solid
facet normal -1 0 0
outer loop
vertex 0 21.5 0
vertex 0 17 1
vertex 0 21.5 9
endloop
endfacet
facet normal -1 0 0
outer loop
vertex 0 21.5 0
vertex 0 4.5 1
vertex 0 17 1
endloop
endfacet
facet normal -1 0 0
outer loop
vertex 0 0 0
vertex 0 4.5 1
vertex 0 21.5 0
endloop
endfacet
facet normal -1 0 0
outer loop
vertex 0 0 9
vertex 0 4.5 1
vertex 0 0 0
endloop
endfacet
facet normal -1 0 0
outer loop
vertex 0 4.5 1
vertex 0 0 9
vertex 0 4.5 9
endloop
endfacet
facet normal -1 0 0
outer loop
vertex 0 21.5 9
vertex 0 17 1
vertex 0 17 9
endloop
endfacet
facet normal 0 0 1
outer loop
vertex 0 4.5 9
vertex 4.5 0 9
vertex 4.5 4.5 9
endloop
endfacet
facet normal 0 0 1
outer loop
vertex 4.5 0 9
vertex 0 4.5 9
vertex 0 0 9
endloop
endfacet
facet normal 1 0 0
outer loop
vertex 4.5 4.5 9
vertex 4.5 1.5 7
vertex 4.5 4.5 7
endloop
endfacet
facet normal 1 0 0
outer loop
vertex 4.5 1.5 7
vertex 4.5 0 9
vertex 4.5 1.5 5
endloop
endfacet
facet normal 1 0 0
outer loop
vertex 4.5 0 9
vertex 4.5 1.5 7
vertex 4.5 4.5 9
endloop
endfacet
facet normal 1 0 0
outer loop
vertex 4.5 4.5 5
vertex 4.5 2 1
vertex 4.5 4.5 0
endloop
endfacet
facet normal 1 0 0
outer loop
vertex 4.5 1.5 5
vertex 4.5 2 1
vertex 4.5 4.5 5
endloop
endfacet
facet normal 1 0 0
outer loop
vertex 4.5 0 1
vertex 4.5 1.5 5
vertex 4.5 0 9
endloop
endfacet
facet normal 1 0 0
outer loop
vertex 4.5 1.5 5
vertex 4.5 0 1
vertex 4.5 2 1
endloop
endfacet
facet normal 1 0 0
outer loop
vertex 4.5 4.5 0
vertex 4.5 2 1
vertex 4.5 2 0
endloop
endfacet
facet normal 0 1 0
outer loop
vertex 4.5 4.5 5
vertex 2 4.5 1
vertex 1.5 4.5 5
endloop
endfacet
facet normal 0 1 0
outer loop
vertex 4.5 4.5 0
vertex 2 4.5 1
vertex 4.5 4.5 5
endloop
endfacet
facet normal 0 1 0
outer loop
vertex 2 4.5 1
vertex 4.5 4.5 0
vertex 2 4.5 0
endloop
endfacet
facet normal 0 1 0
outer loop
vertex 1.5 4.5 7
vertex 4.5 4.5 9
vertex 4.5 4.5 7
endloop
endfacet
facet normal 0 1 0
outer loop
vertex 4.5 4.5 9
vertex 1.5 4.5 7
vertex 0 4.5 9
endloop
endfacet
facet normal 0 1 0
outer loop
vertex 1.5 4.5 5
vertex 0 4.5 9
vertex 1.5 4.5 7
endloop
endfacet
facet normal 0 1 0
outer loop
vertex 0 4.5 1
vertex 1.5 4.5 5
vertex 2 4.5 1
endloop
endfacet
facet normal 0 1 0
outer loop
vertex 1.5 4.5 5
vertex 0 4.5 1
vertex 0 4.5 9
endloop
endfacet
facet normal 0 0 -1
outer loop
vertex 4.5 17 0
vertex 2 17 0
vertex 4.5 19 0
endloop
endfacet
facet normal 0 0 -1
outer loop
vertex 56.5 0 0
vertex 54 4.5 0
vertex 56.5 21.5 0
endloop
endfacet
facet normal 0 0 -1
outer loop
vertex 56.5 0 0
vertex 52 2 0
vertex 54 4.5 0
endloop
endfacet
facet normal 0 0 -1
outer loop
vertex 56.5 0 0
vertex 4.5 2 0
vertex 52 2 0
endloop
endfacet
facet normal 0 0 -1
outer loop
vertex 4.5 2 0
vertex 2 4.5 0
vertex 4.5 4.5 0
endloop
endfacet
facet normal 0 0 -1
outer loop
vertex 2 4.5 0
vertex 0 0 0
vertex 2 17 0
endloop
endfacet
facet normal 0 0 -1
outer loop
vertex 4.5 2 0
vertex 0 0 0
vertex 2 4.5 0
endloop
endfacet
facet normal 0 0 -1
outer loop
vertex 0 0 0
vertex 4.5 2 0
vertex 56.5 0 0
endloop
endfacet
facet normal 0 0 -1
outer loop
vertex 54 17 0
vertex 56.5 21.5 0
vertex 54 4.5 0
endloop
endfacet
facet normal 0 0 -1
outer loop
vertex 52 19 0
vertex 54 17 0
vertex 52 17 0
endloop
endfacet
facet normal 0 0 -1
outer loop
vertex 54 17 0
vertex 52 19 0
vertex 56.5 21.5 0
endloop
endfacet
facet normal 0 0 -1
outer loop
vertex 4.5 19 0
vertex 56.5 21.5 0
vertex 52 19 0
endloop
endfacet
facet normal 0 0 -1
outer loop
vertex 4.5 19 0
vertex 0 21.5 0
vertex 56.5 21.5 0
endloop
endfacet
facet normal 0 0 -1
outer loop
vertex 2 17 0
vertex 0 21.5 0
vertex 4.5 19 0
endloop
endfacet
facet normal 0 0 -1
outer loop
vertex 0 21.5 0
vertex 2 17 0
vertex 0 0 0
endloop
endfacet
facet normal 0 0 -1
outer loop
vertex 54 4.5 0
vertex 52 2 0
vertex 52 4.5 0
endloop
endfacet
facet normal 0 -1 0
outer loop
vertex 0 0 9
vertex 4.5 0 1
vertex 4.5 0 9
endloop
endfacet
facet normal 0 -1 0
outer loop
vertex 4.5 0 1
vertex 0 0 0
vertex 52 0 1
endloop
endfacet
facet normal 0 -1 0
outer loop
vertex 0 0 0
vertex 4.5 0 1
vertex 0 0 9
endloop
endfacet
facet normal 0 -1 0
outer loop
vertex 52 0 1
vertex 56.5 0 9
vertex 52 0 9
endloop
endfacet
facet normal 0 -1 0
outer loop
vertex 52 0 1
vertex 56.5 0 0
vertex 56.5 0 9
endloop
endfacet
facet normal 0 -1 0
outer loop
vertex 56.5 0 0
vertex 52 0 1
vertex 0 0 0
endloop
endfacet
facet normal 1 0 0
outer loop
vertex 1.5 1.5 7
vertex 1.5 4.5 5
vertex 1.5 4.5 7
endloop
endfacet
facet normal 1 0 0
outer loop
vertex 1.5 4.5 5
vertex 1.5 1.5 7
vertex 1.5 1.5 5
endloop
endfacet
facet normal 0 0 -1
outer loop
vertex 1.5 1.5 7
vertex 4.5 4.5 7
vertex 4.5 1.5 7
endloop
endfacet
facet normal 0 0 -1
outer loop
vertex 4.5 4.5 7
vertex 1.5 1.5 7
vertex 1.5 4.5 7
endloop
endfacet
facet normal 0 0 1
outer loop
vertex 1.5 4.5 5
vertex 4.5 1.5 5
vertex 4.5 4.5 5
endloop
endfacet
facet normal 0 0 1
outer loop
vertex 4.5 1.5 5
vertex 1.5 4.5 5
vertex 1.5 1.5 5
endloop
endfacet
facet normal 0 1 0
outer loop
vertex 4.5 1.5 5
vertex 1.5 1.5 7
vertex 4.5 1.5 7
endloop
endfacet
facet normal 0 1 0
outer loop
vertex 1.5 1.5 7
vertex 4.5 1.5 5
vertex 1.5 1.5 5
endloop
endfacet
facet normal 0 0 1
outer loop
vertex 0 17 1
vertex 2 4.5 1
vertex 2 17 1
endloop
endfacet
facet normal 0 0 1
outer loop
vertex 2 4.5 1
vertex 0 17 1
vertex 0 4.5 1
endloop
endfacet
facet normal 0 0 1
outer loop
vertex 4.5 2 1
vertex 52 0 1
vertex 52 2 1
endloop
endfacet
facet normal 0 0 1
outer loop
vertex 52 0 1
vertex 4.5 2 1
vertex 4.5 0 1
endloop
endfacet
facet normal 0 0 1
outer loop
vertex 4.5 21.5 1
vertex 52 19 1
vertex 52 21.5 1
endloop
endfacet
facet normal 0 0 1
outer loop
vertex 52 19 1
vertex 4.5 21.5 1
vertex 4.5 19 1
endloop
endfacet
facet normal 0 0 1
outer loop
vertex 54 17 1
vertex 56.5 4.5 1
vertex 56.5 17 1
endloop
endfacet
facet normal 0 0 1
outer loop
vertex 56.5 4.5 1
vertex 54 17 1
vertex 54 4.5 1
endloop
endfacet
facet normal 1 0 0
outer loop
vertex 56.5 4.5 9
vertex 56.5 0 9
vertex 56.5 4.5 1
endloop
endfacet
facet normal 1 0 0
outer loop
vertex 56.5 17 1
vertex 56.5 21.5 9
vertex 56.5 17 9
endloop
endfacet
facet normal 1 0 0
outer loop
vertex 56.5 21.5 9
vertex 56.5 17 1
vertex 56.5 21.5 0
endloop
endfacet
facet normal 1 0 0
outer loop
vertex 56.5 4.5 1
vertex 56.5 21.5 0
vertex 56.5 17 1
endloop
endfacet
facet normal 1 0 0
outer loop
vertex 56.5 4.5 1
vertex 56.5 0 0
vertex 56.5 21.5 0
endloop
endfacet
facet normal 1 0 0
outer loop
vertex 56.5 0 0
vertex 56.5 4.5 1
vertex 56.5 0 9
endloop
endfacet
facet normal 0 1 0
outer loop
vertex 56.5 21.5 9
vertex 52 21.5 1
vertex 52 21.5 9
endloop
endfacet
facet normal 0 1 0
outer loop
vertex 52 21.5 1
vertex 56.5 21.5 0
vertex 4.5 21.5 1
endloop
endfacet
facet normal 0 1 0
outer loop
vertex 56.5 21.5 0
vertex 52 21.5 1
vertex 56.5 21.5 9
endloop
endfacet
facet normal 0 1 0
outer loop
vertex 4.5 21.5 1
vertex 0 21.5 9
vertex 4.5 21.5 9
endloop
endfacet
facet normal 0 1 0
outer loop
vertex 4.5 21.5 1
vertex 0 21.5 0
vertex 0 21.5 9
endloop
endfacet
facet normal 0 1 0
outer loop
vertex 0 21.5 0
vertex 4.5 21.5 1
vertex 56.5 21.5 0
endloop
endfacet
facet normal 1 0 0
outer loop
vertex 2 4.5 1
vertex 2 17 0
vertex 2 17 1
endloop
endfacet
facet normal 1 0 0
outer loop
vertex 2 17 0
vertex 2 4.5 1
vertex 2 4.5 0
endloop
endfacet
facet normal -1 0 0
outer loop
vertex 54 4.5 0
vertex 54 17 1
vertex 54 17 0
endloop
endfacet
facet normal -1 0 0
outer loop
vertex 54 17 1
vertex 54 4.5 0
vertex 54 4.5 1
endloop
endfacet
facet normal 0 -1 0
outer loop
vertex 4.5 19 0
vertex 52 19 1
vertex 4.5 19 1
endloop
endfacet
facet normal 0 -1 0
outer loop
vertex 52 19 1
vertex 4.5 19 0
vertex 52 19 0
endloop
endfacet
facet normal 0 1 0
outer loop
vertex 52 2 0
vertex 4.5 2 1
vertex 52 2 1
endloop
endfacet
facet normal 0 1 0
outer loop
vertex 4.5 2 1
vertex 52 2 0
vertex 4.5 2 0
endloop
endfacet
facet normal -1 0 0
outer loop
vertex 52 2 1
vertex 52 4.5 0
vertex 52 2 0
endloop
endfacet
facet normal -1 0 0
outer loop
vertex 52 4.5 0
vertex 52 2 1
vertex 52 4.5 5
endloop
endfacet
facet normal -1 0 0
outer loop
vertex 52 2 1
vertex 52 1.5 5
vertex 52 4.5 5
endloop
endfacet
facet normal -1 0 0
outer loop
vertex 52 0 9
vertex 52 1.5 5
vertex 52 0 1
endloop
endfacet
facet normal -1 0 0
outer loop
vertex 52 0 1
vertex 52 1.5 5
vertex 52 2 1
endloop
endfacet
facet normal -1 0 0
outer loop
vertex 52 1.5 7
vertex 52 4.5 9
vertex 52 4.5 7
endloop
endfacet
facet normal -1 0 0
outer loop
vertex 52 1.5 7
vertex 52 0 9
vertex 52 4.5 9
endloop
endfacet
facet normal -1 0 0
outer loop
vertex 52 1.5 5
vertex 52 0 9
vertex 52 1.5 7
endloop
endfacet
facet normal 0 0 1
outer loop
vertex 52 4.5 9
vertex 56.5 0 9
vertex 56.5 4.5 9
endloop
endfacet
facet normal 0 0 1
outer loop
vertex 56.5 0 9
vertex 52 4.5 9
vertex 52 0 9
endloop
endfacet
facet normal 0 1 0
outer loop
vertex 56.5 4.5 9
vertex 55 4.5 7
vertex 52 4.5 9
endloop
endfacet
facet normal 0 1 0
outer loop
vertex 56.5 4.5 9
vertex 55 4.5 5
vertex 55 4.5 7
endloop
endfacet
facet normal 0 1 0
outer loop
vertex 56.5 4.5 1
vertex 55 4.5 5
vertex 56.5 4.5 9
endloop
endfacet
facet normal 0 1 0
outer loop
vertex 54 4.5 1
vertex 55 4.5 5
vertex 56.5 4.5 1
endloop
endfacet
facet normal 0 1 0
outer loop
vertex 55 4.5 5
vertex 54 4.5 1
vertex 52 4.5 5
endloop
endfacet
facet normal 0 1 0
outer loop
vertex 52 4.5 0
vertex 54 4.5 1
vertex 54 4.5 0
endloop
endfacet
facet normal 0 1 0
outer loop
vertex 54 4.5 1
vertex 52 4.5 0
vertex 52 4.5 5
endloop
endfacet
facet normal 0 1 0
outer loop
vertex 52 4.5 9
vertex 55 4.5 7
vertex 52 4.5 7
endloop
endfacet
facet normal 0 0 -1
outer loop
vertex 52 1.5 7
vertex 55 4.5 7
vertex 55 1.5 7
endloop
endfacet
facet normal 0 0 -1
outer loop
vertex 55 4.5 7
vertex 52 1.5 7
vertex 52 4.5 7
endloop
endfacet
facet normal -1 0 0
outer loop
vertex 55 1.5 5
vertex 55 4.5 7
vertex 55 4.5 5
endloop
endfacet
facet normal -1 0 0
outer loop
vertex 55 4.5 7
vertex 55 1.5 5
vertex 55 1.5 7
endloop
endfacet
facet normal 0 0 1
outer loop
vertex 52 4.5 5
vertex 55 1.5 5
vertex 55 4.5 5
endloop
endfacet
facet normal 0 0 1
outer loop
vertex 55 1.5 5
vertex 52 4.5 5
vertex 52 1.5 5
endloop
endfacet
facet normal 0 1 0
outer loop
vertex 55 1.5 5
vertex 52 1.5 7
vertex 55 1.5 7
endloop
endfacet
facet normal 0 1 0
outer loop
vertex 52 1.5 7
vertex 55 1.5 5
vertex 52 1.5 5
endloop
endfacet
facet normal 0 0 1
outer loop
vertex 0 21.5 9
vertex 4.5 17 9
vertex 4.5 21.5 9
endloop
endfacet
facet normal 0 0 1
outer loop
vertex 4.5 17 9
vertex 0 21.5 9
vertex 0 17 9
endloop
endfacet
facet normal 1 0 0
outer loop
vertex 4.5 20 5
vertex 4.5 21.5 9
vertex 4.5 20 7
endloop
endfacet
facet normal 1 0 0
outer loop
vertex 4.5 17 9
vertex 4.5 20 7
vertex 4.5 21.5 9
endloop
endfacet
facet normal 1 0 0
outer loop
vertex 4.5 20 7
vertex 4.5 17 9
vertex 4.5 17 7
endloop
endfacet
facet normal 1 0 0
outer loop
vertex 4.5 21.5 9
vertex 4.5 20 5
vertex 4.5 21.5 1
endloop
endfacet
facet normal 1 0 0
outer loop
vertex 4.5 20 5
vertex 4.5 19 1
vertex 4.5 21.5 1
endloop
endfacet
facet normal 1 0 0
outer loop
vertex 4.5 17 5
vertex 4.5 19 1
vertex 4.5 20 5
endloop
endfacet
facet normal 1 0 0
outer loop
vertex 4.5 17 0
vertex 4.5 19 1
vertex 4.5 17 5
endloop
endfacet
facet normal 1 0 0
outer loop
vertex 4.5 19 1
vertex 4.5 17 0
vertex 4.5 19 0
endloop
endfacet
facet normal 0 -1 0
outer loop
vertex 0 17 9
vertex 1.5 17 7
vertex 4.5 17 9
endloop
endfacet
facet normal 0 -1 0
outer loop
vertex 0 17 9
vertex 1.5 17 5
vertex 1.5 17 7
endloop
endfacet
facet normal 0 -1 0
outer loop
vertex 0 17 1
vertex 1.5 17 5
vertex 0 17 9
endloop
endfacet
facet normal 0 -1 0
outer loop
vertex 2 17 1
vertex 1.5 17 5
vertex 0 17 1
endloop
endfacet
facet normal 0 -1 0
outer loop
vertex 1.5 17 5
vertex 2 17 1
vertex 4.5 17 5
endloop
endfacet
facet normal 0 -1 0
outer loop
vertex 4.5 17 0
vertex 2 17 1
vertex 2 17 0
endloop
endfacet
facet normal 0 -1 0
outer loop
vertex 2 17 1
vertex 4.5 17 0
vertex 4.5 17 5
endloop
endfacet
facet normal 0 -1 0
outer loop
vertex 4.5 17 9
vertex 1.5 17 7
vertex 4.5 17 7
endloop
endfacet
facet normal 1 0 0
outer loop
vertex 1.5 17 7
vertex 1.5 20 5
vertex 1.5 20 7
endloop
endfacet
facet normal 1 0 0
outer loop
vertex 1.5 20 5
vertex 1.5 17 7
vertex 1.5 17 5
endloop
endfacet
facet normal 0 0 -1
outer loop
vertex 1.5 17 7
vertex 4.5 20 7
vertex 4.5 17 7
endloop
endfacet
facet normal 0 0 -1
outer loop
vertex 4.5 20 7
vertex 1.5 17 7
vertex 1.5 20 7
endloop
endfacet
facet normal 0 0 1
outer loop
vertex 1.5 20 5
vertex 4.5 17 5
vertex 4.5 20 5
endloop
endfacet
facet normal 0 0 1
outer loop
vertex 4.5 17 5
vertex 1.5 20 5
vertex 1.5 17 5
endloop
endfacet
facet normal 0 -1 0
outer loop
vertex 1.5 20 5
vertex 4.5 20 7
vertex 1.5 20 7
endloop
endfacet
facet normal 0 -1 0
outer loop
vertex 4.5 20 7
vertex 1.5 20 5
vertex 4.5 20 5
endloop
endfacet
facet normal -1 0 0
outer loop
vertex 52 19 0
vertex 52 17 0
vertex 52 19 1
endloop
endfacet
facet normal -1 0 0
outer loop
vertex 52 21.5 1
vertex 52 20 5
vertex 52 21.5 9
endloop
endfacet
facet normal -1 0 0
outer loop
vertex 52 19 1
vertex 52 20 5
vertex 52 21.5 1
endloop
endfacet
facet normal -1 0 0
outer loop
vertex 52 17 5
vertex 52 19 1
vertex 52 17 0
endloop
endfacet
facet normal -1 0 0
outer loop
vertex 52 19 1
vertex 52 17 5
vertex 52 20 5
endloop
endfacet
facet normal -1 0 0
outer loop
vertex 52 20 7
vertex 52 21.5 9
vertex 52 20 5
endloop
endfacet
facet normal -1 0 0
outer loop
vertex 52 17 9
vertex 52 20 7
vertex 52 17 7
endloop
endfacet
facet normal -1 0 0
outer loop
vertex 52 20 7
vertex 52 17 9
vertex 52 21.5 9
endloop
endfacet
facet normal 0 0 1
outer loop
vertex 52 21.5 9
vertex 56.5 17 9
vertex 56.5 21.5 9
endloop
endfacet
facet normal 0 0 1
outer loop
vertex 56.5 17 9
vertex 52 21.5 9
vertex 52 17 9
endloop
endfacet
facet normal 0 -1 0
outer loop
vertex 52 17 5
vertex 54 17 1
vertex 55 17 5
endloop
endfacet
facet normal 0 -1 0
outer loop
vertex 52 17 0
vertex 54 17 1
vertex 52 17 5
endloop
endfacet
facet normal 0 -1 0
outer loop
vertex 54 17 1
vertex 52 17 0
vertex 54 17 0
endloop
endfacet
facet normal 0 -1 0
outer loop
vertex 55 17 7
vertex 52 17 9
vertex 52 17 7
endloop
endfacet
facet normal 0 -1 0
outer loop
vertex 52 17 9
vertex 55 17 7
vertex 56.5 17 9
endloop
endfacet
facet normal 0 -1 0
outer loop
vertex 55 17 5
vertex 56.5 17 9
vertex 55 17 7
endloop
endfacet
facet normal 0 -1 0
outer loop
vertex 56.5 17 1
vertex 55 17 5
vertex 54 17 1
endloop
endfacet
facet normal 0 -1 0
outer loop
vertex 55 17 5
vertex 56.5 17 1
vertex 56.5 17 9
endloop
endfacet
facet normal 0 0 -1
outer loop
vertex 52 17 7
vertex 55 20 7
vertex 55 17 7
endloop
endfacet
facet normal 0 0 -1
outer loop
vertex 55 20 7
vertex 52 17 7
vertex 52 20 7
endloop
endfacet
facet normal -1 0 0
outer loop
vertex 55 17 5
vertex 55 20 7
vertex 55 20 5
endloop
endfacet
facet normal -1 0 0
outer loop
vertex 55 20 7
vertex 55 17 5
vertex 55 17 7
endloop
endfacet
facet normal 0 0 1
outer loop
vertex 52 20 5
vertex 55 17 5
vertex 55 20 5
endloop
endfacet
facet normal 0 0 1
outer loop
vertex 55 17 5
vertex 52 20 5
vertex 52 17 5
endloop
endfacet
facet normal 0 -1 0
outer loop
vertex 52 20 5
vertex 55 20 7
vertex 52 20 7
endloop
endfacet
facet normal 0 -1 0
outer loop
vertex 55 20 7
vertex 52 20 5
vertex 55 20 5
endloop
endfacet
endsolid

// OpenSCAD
module relay(xx, yy) {
translate([xx+1.8,yy,0]) cylinder(7,1.8,1.2);
translate([xx+53-1.8,yy,0]) cylinder(7,1.8,1.2);
translate([xx+1.8,yy-14,0]) cylinder(7,1.8,1.2);
translate([xx+53-1.8,yy-14,0]) cylinder(7,1.8,1.2);
}
module relay2(xx, yy) {
    translate([xx,yy,0]) difference () {cube([4.5,4.5,9]); translate([1.5,1.5,5]) cube([3,3,2]);}
    translate([xx+53-1,yy,0]) difference () {cube([4.5,4.5,9]); translate([0,1.5,5]) cube([3,3,2]);}
    translate([xx,yy+18-1,0]) difference () {cube([4.5,4.5,9]); translate([1.5,0,5]) cube([3,3,2]);}
    translate([xx+53-1,yy+18-1,0]) difference () {cube([4.5,4.5,9]); translate([0,0,5]) #cube([3,3,2]);}

}
$fs = 0.01;
difference() {
    cube([53+3.5,18+3.5,1]);
    translate([2,2,0]) cube([53-1,18-2+1,2]);
}
relay2(0,0);
